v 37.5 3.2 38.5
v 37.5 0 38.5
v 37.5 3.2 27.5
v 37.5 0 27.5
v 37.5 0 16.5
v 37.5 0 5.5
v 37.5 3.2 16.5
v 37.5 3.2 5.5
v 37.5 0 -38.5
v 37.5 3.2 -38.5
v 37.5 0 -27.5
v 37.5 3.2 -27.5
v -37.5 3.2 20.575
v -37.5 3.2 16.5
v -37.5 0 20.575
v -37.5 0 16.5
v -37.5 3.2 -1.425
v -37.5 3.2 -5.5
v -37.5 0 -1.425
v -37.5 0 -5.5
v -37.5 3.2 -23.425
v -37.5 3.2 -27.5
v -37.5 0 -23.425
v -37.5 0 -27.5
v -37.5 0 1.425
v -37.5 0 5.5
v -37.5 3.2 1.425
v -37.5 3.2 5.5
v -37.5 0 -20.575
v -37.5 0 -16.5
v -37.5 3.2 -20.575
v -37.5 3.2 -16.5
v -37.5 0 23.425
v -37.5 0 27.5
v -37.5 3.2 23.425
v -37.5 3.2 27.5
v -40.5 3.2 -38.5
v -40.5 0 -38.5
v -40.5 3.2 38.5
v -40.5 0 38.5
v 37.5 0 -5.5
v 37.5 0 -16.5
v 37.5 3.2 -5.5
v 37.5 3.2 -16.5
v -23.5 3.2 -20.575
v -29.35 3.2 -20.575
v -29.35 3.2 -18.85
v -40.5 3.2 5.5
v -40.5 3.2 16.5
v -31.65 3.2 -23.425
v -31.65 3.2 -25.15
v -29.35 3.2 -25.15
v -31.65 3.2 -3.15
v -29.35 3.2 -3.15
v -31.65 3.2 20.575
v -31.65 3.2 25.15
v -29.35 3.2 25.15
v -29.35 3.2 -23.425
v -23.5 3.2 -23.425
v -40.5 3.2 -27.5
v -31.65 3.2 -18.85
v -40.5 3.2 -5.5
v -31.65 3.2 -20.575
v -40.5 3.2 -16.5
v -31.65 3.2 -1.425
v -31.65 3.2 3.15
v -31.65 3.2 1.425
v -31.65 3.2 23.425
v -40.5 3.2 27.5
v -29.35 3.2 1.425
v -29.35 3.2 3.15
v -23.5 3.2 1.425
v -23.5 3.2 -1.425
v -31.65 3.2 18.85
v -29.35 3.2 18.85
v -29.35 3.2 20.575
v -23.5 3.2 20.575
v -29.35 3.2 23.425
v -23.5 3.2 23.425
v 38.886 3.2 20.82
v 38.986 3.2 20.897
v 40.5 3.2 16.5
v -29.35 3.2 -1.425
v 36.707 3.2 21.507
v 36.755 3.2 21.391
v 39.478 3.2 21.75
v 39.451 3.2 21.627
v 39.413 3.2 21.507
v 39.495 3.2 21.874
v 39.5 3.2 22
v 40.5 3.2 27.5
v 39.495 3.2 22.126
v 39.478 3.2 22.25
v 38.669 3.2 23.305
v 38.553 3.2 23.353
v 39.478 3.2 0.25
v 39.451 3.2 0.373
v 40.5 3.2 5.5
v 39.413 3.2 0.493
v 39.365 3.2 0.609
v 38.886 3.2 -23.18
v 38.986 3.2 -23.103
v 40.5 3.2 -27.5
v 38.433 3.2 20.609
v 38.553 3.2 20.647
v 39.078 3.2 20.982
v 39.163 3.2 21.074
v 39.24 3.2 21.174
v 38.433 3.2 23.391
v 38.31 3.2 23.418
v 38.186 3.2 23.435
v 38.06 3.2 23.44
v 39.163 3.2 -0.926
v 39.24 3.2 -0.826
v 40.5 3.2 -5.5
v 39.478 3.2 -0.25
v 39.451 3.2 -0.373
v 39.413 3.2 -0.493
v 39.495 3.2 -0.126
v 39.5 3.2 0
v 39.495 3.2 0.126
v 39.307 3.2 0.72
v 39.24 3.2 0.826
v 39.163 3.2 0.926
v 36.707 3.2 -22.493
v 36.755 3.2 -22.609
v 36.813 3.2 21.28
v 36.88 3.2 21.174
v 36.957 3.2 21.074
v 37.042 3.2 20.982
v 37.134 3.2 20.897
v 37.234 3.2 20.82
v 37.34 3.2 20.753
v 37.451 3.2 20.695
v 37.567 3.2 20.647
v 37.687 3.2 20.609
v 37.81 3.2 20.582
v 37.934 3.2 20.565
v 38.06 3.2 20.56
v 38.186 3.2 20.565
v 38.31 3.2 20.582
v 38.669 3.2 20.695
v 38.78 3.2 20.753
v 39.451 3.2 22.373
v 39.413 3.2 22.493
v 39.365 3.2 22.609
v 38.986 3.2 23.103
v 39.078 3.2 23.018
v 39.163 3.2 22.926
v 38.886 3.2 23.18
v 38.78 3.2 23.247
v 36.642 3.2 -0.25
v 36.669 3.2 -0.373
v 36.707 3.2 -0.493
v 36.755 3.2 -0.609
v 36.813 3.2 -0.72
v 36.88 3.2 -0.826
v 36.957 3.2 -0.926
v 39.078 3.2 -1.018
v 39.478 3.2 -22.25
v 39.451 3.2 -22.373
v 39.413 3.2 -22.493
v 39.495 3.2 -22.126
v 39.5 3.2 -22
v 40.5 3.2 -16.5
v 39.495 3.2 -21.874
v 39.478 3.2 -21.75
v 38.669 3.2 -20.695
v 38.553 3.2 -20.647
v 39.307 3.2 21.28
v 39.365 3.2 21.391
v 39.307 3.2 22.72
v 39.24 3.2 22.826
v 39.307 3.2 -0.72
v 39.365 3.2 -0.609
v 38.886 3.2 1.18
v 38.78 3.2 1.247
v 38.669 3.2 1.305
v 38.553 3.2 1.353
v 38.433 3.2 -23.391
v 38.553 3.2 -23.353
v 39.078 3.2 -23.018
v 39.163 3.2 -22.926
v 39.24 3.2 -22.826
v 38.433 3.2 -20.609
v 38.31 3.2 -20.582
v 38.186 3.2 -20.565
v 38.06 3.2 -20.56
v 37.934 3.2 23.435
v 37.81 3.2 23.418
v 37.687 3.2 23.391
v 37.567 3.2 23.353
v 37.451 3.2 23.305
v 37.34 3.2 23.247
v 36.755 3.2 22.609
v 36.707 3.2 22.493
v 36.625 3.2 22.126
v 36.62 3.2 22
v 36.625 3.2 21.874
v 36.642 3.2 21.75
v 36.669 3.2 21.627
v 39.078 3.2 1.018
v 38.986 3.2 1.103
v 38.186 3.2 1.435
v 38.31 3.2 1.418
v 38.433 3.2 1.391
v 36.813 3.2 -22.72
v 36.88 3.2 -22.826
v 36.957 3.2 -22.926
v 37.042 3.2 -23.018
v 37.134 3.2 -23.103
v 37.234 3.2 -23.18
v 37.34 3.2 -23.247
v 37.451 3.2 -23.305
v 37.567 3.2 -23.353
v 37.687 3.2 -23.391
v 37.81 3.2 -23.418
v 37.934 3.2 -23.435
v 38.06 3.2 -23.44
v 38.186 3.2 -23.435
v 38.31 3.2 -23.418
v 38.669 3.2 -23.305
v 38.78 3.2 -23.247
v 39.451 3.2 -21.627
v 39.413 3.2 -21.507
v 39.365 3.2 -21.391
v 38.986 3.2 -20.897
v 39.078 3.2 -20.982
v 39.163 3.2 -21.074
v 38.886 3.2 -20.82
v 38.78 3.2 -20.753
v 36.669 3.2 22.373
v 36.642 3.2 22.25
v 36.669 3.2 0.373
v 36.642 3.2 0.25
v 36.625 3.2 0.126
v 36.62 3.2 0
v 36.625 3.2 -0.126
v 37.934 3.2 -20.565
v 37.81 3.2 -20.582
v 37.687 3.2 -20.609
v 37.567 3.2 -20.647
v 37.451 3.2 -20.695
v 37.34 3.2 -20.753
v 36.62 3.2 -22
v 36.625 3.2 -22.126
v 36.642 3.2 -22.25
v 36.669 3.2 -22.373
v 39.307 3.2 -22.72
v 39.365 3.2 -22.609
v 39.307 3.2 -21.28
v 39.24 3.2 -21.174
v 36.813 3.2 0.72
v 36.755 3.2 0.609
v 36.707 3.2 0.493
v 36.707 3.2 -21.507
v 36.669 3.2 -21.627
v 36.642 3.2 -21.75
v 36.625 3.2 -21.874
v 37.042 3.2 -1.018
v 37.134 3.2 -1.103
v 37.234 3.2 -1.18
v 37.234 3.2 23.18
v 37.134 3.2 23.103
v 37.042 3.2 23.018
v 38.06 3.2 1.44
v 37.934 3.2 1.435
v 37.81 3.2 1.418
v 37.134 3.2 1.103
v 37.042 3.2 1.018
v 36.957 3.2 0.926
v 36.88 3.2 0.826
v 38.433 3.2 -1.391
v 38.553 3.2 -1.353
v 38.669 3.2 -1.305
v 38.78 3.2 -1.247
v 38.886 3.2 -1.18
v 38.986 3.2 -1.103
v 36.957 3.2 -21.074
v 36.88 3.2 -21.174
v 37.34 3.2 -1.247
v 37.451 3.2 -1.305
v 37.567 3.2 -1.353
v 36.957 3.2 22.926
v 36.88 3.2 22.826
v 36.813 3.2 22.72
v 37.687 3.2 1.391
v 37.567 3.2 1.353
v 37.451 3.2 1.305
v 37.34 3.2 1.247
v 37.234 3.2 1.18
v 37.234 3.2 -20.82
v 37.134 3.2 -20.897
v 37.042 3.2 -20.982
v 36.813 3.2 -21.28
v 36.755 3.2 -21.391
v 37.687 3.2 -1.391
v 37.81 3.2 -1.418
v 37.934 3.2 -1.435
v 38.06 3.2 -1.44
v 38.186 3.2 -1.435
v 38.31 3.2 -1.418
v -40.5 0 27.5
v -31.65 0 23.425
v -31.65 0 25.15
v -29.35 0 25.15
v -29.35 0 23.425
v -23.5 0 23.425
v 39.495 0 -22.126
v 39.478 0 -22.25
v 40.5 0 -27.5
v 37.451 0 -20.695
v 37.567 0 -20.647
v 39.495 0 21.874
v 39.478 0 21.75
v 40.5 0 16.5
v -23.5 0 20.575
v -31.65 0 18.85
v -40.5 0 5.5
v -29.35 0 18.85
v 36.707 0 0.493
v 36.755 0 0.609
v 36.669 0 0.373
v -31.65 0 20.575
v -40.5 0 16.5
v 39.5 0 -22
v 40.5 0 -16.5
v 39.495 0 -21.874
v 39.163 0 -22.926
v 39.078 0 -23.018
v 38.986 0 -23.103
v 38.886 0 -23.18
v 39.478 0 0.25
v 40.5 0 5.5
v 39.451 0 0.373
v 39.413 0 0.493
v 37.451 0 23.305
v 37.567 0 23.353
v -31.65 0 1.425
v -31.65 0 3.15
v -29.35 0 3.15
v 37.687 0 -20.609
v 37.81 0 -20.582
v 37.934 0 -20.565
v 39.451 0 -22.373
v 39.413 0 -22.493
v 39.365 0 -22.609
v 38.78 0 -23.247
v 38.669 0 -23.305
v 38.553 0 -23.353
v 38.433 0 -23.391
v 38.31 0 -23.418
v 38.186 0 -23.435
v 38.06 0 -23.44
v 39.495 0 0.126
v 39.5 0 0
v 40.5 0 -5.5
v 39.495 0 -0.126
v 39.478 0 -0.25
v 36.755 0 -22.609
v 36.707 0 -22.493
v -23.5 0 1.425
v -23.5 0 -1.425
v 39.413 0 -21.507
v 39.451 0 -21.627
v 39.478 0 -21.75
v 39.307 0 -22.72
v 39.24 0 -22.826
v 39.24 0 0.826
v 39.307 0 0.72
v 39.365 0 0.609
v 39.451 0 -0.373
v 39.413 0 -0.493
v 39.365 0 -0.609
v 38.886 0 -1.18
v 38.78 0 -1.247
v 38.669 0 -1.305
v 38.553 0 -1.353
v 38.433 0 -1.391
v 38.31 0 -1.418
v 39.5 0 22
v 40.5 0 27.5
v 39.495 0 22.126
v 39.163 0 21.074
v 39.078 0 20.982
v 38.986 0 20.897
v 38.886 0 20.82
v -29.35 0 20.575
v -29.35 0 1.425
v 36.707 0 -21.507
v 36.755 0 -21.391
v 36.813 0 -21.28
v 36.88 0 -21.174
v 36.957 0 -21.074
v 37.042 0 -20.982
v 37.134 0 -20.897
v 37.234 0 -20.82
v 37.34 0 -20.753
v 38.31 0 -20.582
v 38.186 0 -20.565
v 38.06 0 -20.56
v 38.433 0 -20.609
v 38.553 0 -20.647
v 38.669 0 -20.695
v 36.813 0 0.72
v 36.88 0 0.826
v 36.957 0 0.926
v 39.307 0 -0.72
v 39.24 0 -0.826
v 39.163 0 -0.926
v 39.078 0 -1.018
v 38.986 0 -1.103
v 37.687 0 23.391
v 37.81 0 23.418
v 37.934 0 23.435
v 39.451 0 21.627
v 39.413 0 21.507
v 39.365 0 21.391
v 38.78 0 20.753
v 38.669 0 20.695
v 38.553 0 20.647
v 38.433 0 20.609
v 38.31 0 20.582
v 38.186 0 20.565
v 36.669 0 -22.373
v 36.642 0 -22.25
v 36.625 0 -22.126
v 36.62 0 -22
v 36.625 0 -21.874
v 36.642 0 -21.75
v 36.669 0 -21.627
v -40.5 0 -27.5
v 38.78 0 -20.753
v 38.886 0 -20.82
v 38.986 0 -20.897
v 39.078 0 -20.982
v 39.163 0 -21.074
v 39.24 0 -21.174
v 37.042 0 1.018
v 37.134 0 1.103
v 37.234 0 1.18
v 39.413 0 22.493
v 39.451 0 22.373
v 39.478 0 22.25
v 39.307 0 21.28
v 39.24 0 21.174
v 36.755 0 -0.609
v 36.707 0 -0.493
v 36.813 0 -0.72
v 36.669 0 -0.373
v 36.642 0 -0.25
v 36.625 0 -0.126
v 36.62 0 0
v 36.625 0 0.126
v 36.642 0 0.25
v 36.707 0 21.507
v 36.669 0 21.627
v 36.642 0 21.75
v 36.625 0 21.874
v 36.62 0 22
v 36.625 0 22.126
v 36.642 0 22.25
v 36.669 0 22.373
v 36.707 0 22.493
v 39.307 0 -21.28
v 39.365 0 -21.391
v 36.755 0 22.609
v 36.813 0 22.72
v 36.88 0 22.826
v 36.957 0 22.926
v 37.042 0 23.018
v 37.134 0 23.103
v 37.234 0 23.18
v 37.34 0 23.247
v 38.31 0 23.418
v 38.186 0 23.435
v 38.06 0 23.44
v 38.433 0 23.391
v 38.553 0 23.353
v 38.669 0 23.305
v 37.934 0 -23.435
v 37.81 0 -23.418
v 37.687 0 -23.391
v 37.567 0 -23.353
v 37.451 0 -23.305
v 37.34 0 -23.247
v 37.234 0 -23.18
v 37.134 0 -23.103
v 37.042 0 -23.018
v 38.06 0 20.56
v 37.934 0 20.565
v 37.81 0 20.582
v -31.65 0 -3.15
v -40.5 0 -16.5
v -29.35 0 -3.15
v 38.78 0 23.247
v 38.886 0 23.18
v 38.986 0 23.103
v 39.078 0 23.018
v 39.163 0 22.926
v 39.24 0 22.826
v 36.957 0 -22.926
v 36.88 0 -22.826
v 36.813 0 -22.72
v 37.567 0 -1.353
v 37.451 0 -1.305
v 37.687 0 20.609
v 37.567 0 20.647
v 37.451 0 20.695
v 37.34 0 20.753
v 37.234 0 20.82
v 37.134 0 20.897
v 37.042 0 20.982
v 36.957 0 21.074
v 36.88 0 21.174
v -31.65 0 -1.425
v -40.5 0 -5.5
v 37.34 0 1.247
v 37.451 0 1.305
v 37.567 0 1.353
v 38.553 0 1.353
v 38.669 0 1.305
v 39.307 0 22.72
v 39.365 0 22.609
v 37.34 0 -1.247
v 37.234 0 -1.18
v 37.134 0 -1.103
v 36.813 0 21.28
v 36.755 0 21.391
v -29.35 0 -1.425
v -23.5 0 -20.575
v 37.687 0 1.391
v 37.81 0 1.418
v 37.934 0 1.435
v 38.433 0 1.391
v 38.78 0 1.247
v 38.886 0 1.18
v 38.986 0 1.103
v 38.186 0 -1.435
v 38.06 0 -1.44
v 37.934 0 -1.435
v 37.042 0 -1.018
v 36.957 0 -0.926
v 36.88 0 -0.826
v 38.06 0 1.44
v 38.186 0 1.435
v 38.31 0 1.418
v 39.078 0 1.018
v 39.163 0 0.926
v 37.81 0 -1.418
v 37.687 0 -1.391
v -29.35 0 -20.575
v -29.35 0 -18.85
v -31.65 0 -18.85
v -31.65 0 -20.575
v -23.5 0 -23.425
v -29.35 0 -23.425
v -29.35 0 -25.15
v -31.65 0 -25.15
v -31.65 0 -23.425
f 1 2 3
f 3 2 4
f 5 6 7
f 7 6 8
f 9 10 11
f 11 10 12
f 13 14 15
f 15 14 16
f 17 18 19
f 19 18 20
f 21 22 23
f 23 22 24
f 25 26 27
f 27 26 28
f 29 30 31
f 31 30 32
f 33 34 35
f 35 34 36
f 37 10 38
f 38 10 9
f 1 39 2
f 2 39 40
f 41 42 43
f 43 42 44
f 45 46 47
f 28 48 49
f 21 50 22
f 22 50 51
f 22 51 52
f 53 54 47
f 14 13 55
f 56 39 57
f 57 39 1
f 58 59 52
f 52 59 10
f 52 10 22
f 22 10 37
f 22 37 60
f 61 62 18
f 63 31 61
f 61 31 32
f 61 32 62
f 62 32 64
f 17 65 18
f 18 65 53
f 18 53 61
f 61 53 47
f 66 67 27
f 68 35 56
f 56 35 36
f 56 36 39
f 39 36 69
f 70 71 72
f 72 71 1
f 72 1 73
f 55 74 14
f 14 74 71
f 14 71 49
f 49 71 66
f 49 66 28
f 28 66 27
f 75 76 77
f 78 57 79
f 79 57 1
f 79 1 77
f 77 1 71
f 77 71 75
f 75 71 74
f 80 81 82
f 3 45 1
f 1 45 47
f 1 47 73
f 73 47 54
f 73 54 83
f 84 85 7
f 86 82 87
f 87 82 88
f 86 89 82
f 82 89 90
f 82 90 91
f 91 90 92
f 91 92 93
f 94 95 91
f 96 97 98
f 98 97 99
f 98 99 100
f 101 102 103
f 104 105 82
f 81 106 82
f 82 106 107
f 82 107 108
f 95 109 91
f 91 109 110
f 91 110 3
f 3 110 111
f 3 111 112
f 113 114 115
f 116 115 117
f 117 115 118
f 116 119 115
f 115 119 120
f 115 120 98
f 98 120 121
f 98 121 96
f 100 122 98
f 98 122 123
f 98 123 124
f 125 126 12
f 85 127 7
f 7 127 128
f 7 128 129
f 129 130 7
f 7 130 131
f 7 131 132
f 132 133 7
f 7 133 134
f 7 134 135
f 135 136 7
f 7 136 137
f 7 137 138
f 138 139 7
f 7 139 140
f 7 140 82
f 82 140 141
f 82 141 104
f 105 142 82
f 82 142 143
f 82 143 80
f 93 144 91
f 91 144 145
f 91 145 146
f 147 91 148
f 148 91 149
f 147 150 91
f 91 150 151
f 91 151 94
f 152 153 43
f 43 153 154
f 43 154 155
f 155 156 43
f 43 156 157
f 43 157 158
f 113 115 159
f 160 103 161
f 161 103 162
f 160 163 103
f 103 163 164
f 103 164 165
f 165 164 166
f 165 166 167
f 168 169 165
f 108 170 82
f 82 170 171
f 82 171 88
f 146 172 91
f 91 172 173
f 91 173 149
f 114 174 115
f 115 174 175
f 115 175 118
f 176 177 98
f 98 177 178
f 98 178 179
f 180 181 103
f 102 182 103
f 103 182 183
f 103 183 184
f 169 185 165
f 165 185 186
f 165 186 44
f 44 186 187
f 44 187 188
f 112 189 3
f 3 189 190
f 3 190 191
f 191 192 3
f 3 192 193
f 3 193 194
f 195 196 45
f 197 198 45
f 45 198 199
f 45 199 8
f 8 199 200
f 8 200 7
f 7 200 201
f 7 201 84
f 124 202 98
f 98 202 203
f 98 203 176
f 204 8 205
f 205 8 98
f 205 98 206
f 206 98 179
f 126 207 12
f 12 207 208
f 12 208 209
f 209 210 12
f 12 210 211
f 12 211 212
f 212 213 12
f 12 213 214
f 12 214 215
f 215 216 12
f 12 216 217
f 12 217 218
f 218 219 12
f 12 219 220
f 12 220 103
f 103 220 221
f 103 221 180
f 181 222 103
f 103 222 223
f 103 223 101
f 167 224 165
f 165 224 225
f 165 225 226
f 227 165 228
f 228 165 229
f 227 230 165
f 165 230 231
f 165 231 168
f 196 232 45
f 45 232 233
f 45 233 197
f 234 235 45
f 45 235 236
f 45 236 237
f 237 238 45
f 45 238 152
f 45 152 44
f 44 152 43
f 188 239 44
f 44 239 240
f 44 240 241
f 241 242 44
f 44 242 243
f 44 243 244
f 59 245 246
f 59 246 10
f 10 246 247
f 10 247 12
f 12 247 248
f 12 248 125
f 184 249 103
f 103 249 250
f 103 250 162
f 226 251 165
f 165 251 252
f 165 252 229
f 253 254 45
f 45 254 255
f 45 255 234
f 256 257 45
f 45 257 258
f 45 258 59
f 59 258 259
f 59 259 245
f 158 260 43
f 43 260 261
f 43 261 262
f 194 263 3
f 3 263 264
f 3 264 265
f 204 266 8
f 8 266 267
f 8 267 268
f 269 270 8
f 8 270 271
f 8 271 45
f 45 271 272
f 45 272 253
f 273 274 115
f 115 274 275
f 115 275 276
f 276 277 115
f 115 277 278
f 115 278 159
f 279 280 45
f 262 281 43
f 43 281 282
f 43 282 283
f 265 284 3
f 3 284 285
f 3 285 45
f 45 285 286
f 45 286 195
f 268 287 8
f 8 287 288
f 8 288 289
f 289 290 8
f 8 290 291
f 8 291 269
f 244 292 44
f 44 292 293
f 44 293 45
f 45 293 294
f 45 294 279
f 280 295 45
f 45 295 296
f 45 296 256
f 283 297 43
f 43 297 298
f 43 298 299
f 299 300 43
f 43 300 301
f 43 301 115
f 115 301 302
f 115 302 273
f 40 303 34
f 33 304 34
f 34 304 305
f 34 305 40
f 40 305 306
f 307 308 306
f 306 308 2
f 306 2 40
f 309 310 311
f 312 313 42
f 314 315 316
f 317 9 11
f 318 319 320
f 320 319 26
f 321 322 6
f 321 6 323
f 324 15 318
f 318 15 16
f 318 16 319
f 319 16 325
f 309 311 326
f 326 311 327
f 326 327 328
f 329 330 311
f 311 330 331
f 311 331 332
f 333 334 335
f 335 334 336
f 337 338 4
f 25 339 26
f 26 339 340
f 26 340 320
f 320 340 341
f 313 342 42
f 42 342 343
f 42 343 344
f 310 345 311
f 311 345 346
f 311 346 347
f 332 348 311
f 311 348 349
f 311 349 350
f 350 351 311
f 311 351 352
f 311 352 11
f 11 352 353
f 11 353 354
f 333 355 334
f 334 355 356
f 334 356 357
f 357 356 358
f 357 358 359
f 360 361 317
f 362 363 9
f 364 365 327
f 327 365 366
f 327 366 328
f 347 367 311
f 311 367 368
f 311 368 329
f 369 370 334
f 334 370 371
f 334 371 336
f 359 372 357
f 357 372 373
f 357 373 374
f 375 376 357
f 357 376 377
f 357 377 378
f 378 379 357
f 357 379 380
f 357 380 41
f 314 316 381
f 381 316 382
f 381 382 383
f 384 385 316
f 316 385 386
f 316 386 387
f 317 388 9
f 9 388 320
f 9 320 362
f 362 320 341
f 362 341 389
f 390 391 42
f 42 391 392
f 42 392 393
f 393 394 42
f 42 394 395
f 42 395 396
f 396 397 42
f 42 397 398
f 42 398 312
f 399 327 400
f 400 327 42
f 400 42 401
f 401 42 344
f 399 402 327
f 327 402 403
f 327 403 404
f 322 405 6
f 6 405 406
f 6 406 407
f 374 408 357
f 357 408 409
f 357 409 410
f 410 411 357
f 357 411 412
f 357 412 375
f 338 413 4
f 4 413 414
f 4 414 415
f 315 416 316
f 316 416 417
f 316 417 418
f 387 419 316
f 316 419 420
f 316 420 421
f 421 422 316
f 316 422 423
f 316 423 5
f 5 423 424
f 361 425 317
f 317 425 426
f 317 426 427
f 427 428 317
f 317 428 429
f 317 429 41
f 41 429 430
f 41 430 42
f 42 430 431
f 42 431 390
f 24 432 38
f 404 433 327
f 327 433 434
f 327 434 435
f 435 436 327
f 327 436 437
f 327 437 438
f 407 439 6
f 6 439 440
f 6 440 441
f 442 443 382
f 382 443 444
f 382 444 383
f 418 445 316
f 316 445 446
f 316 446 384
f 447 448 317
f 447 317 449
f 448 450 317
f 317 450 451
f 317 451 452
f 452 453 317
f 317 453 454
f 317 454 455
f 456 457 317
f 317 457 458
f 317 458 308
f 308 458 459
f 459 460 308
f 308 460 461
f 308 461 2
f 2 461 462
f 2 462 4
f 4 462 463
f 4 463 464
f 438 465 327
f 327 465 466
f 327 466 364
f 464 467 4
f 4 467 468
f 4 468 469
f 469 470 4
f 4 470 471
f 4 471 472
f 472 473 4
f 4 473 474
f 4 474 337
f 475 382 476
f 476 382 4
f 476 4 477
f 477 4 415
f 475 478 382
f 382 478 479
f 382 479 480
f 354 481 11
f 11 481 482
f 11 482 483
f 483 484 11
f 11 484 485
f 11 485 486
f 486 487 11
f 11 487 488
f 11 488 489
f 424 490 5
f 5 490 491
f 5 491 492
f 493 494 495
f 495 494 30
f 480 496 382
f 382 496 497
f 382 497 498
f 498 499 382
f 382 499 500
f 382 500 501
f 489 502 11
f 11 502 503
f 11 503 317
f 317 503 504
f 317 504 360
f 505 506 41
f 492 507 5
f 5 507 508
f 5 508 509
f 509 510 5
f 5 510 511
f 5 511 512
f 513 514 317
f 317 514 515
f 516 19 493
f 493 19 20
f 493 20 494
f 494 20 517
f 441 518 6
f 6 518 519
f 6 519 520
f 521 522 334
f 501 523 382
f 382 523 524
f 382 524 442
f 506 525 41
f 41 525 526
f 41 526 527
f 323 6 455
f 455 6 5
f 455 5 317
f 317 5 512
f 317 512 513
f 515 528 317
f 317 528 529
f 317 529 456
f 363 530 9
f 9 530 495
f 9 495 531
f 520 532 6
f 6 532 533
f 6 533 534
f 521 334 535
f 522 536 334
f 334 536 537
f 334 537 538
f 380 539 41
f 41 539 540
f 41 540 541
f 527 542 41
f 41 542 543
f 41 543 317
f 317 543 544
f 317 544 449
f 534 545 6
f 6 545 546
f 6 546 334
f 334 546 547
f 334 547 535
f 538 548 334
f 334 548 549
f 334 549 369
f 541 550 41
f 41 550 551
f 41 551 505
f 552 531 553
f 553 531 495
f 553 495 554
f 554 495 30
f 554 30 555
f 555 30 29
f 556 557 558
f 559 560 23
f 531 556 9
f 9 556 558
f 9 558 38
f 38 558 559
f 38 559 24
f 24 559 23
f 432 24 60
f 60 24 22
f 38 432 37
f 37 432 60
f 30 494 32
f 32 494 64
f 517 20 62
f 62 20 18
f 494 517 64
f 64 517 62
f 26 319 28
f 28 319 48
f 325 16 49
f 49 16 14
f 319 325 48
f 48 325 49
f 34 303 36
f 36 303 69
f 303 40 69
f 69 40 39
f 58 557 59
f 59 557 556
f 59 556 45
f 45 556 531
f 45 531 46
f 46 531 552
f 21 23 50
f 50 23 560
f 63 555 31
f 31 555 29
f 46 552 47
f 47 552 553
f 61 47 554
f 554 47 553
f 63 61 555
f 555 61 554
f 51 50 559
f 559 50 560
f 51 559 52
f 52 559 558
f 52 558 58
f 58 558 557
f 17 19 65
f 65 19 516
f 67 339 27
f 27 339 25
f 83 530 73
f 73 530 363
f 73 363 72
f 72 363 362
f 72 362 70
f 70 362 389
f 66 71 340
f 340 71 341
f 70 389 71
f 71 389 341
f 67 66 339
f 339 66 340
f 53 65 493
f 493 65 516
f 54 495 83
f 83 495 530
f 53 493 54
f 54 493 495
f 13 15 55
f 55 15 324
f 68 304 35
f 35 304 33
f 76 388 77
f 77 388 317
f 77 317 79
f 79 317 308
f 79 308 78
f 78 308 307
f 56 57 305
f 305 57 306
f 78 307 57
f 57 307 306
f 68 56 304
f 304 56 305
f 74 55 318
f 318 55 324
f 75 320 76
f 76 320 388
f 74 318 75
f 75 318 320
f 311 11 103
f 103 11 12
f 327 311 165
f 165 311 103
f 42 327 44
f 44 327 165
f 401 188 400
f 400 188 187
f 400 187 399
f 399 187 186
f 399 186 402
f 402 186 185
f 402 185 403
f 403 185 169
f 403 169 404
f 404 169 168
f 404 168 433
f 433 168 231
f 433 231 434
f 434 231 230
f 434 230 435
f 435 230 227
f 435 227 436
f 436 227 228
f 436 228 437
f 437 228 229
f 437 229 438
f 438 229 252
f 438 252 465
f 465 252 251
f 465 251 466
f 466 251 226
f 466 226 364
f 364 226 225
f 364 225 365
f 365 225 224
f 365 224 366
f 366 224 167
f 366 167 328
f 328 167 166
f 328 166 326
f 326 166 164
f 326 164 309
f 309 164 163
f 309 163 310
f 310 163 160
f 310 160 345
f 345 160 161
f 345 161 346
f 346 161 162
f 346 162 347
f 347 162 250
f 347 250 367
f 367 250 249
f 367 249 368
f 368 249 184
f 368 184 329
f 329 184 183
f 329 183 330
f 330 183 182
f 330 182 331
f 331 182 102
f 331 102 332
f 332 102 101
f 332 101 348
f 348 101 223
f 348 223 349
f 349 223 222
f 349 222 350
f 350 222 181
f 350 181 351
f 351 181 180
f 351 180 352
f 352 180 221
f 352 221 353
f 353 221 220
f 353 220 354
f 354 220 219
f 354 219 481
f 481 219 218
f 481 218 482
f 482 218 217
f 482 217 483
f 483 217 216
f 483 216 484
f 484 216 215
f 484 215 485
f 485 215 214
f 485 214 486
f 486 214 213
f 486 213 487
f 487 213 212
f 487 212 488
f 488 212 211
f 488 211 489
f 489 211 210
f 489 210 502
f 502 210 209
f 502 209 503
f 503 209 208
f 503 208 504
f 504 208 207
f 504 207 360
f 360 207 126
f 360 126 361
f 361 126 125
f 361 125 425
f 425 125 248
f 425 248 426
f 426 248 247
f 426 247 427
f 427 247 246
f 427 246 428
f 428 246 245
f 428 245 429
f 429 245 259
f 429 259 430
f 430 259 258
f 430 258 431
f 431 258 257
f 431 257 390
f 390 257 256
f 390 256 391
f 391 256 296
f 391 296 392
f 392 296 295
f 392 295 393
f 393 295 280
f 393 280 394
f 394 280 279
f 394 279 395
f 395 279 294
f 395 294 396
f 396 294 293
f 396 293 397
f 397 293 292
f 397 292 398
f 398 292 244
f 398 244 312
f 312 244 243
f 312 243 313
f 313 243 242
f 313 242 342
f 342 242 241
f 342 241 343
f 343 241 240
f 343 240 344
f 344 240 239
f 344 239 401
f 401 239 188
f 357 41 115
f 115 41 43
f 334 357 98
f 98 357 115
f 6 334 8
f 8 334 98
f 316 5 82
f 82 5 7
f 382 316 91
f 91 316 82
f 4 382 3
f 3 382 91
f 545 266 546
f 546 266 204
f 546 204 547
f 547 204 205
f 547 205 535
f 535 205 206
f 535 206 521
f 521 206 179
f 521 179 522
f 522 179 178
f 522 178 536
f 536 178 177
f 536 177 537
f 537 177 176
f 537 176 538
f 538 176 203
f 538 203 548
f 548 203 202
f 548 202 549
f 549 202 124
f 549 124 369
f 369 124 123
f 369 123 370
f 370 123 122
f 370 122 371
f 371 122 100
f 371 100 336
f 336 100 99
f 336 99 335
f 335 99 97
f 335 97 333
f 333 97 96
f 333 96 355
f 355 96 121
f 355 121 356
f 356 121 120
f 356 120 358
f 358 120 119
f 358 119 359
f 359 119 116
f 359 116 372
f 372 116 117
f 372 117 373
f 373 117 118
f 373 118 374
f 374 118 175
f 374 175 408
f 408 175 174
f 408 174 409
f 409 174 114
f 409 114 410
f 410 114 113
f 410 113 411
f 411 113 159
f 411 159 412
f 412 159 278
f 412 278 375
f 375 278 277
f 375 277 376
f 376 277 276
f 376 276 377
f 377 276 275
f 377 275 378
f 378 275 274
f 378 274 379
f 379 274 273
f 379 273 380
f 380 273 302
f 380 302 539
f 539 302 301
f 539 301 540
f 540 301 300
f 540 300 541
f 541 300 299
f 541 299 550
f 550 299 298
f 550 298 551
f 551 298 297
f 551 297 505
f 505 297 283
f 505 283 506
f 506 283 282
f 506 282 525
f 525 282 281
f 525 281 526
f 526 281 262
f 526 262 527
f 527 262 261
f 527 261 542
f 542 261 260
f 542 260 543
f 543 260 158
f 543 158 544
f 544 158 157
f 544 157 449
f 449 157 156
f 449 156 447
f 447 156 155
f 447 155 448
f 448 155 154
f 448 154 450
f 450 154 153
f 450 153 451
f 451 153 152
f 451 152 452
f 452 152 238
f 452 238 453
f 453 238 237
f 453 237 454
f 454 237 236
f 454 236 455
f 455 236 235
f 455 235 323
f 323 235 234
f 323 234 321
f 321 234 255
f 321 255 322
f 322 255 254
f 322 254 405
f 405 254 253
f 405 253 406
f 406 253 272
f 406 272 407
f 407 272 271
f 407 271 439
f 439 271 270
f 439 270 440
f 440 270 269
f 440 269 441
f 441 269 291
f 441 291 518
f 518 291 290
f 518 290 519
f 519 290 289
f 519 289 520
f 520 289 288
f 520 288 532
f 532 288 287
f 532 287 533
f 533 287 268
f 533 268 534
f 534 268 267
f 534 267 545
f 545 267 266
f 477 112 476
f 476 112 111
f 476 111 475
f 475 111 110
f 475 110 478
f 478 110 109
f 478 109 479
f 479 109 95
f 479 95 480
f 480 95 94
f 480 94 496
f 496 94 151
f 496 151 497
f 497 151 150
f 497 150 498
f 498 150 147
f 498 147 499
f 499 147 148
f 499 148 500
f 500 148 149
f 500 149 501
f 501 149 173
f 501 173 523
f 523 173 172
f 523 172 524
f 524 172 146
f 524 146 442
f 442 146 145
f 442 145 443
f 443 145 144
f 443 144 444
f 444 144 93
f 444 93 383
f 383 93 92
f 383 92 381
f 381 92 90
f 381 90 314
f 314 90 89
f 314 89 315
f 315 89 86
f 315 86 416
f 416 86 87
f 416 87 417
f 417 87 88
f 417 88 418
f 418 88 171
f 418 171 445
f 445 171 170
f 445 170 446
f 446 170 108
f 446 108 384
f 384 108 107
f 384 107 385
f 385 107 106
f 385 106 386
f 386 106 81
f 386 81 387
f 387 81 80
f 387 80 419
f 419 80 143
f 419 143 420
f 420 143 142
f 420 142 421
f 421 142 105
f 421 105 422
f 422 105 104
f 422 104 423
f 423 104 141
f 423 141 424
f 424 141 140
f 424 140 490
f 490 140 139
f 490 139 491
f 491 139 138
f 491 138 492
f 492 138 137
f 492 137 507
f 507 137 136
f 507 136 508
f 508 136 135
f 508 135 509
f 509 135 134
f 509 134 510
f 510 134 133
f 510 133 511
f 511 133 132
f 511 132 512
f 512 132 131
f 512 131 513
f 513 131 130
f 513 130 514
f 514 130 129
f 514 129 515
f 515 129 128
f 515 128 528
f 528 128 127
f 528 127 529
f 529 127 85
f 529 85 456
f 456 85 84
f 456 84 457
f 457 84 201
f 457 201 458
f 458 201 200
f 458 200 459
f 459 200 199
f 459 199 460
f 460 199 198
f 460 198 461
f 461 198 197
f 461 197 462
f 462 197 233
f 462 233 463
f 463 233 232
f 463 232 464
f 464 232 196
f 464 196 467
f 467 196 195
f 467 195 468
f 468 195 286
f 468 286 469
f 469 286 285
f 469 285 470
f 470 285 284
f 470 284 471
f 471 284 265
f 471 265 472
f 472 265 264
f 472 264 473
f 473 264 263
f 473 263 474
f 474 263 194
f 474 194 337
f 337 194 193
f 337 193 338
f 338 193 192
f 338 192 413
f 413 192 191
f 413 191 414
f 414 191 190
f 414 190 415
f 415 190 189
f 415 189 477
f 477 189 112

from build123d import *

# Parameters (mm, degrees)
SKETCH1_W           = 75
SKETCH1_H           = 77
BOSS_EXTRUDE1_DEPTH = 3.2
SKETCH2_W           = 3
SKETCH2_H           = 11
BOSS_EXTRUDE3_DEPTH = 3.2
LPATTERN1_COUNT     = 4
LPATTERN1_PITCH     = 22
SKETCH5_W           = 14
SKETCH5_H           = 2.85
SKETCH5_W_2         = 2.3
SKETCH5_H_2         = 6.3
CUT_EXTRUDE1_DEPTH  = 56.970885289
LPATTERN3_COUNT     = 3
LPATTERN3_PITCH     = 22
SKETCH4_W           = 3
SKETCH4_H           = 11
BOSS_EXTRUDE6_DEPTH = 3.2
SKETCH7_R           = 1.44
CUT_EXTRUDE2_DEPTH  = 56.970885289
LPATTERN7_COUNT     = 3
LPATTERN7_PITCH     = 22
LPATTERN8_COUNT     = 3
LPATTERN8_PITCH     = 22


with BuildPart() as part:
    # Sketch1 → Boss-Extrude1 (new body)
    with BuildSketch(Plane(origin=(0, 0, 0), x_dir=(1, 0, 0), z_dir=(0, 1, 0))):
        Rectangle(SKETCH1_W, SKETCH1_H)
    extrude(amount=BOSS_EXTRUDE1_DEPTH)

    # Sketch2 → Boss-Extrude3 (add)
    with BuildSketch(Plane(origin=(0, 3.2, 0), x_dir=(1, 0, 0), z_dir=(0, 1, 0))):
        with Locations((-39, 33)):
            Rectangle(SKETCH2_W, SKETCH2_H)
    boss_extrude3 = extrude(amount=-BOSS_EXTRUDE3_DEPTH)

    # LPattern1: Boss-Extrude3 ×4
    with Locations(*[(0, 0, i * LPATTERN1_PITCH) for i in range(1, LPATTERN1_COUNT)]):
        add(boss_extrude3)

    # Sketch5 → Cut-Extrude1 (cut, through all)
    with BuildSketch(Plane(origin=(0, 3.2, 0), x_dir=(1, 0, 0), z_dir=(0, 1, 0))):
        with Locations((-30.5, 22)):
            Rectangle(SKETCH5_W, SKETCH5_H)
        with Locations((-30.5, 22)):
            Rectangle(SKETCH5_W_2, SKETCH5_H_2)
    cut_extrude1 = extrude(amount=-CUT_EXTRUDE1_DEPTH, mode=Mode.SUBTRACT)

    # LPattern3: Cut-Extrude1 ×3
    with Locations(*[(0, 0, i * LPATTERN3_PITCH) for i in range(1, LPATTERN3_COUNT)]):
        add(cut_extrude1, mode=Mode.SUBTRACT)

    # Sketch4 → Boss-Extrude6 (add)
    with BuildSketch(Plane(origin=(0, 3.2, 0), x_dir=(1, 0, 0), z_dir=(0, 1, 0))):
        with Locations((39, 22)):
            Rectangle(SKETCH4_W, SKETCH4_H)
    boss_extrude6 = extrude(amount=-BOSS_EXTRUDE6_DEPTH)

    # Sketch7 → Cut-Extrude2 (cut, through all)
    with BuildSketch(Plane(origin=(0, 3.2, 0), x_dir=(1, 0, 0), z_dir=(0, 1, 0))):
        with Locations(Location((38.06, 22, 0), (0, 0, 270))):
            Circle(SKETCH7_R)
    cut_extrude2 = extrude(amount=-CUT_EXTRUDE2_DEPTH, mode=Mode.SUBTRACT)

    # LPattern7: Boss-Extrude6 ×3
    with Locations(*[(0, 0, i * LPATTERN7_PITCH) for i in range(1, LPATTERN7_COUNT)]):
        add(boss_extrude6)

    # LPattern8: Cut-Extrude2 ×3
    with Locations(*[(0, 0, i * LPATTERN8_PITCH) for i in range(1, LPATTERN8_COUNT)]):
        add(cut_extrude2, mode=Mode.SUBTRACT)


solid = part.part
